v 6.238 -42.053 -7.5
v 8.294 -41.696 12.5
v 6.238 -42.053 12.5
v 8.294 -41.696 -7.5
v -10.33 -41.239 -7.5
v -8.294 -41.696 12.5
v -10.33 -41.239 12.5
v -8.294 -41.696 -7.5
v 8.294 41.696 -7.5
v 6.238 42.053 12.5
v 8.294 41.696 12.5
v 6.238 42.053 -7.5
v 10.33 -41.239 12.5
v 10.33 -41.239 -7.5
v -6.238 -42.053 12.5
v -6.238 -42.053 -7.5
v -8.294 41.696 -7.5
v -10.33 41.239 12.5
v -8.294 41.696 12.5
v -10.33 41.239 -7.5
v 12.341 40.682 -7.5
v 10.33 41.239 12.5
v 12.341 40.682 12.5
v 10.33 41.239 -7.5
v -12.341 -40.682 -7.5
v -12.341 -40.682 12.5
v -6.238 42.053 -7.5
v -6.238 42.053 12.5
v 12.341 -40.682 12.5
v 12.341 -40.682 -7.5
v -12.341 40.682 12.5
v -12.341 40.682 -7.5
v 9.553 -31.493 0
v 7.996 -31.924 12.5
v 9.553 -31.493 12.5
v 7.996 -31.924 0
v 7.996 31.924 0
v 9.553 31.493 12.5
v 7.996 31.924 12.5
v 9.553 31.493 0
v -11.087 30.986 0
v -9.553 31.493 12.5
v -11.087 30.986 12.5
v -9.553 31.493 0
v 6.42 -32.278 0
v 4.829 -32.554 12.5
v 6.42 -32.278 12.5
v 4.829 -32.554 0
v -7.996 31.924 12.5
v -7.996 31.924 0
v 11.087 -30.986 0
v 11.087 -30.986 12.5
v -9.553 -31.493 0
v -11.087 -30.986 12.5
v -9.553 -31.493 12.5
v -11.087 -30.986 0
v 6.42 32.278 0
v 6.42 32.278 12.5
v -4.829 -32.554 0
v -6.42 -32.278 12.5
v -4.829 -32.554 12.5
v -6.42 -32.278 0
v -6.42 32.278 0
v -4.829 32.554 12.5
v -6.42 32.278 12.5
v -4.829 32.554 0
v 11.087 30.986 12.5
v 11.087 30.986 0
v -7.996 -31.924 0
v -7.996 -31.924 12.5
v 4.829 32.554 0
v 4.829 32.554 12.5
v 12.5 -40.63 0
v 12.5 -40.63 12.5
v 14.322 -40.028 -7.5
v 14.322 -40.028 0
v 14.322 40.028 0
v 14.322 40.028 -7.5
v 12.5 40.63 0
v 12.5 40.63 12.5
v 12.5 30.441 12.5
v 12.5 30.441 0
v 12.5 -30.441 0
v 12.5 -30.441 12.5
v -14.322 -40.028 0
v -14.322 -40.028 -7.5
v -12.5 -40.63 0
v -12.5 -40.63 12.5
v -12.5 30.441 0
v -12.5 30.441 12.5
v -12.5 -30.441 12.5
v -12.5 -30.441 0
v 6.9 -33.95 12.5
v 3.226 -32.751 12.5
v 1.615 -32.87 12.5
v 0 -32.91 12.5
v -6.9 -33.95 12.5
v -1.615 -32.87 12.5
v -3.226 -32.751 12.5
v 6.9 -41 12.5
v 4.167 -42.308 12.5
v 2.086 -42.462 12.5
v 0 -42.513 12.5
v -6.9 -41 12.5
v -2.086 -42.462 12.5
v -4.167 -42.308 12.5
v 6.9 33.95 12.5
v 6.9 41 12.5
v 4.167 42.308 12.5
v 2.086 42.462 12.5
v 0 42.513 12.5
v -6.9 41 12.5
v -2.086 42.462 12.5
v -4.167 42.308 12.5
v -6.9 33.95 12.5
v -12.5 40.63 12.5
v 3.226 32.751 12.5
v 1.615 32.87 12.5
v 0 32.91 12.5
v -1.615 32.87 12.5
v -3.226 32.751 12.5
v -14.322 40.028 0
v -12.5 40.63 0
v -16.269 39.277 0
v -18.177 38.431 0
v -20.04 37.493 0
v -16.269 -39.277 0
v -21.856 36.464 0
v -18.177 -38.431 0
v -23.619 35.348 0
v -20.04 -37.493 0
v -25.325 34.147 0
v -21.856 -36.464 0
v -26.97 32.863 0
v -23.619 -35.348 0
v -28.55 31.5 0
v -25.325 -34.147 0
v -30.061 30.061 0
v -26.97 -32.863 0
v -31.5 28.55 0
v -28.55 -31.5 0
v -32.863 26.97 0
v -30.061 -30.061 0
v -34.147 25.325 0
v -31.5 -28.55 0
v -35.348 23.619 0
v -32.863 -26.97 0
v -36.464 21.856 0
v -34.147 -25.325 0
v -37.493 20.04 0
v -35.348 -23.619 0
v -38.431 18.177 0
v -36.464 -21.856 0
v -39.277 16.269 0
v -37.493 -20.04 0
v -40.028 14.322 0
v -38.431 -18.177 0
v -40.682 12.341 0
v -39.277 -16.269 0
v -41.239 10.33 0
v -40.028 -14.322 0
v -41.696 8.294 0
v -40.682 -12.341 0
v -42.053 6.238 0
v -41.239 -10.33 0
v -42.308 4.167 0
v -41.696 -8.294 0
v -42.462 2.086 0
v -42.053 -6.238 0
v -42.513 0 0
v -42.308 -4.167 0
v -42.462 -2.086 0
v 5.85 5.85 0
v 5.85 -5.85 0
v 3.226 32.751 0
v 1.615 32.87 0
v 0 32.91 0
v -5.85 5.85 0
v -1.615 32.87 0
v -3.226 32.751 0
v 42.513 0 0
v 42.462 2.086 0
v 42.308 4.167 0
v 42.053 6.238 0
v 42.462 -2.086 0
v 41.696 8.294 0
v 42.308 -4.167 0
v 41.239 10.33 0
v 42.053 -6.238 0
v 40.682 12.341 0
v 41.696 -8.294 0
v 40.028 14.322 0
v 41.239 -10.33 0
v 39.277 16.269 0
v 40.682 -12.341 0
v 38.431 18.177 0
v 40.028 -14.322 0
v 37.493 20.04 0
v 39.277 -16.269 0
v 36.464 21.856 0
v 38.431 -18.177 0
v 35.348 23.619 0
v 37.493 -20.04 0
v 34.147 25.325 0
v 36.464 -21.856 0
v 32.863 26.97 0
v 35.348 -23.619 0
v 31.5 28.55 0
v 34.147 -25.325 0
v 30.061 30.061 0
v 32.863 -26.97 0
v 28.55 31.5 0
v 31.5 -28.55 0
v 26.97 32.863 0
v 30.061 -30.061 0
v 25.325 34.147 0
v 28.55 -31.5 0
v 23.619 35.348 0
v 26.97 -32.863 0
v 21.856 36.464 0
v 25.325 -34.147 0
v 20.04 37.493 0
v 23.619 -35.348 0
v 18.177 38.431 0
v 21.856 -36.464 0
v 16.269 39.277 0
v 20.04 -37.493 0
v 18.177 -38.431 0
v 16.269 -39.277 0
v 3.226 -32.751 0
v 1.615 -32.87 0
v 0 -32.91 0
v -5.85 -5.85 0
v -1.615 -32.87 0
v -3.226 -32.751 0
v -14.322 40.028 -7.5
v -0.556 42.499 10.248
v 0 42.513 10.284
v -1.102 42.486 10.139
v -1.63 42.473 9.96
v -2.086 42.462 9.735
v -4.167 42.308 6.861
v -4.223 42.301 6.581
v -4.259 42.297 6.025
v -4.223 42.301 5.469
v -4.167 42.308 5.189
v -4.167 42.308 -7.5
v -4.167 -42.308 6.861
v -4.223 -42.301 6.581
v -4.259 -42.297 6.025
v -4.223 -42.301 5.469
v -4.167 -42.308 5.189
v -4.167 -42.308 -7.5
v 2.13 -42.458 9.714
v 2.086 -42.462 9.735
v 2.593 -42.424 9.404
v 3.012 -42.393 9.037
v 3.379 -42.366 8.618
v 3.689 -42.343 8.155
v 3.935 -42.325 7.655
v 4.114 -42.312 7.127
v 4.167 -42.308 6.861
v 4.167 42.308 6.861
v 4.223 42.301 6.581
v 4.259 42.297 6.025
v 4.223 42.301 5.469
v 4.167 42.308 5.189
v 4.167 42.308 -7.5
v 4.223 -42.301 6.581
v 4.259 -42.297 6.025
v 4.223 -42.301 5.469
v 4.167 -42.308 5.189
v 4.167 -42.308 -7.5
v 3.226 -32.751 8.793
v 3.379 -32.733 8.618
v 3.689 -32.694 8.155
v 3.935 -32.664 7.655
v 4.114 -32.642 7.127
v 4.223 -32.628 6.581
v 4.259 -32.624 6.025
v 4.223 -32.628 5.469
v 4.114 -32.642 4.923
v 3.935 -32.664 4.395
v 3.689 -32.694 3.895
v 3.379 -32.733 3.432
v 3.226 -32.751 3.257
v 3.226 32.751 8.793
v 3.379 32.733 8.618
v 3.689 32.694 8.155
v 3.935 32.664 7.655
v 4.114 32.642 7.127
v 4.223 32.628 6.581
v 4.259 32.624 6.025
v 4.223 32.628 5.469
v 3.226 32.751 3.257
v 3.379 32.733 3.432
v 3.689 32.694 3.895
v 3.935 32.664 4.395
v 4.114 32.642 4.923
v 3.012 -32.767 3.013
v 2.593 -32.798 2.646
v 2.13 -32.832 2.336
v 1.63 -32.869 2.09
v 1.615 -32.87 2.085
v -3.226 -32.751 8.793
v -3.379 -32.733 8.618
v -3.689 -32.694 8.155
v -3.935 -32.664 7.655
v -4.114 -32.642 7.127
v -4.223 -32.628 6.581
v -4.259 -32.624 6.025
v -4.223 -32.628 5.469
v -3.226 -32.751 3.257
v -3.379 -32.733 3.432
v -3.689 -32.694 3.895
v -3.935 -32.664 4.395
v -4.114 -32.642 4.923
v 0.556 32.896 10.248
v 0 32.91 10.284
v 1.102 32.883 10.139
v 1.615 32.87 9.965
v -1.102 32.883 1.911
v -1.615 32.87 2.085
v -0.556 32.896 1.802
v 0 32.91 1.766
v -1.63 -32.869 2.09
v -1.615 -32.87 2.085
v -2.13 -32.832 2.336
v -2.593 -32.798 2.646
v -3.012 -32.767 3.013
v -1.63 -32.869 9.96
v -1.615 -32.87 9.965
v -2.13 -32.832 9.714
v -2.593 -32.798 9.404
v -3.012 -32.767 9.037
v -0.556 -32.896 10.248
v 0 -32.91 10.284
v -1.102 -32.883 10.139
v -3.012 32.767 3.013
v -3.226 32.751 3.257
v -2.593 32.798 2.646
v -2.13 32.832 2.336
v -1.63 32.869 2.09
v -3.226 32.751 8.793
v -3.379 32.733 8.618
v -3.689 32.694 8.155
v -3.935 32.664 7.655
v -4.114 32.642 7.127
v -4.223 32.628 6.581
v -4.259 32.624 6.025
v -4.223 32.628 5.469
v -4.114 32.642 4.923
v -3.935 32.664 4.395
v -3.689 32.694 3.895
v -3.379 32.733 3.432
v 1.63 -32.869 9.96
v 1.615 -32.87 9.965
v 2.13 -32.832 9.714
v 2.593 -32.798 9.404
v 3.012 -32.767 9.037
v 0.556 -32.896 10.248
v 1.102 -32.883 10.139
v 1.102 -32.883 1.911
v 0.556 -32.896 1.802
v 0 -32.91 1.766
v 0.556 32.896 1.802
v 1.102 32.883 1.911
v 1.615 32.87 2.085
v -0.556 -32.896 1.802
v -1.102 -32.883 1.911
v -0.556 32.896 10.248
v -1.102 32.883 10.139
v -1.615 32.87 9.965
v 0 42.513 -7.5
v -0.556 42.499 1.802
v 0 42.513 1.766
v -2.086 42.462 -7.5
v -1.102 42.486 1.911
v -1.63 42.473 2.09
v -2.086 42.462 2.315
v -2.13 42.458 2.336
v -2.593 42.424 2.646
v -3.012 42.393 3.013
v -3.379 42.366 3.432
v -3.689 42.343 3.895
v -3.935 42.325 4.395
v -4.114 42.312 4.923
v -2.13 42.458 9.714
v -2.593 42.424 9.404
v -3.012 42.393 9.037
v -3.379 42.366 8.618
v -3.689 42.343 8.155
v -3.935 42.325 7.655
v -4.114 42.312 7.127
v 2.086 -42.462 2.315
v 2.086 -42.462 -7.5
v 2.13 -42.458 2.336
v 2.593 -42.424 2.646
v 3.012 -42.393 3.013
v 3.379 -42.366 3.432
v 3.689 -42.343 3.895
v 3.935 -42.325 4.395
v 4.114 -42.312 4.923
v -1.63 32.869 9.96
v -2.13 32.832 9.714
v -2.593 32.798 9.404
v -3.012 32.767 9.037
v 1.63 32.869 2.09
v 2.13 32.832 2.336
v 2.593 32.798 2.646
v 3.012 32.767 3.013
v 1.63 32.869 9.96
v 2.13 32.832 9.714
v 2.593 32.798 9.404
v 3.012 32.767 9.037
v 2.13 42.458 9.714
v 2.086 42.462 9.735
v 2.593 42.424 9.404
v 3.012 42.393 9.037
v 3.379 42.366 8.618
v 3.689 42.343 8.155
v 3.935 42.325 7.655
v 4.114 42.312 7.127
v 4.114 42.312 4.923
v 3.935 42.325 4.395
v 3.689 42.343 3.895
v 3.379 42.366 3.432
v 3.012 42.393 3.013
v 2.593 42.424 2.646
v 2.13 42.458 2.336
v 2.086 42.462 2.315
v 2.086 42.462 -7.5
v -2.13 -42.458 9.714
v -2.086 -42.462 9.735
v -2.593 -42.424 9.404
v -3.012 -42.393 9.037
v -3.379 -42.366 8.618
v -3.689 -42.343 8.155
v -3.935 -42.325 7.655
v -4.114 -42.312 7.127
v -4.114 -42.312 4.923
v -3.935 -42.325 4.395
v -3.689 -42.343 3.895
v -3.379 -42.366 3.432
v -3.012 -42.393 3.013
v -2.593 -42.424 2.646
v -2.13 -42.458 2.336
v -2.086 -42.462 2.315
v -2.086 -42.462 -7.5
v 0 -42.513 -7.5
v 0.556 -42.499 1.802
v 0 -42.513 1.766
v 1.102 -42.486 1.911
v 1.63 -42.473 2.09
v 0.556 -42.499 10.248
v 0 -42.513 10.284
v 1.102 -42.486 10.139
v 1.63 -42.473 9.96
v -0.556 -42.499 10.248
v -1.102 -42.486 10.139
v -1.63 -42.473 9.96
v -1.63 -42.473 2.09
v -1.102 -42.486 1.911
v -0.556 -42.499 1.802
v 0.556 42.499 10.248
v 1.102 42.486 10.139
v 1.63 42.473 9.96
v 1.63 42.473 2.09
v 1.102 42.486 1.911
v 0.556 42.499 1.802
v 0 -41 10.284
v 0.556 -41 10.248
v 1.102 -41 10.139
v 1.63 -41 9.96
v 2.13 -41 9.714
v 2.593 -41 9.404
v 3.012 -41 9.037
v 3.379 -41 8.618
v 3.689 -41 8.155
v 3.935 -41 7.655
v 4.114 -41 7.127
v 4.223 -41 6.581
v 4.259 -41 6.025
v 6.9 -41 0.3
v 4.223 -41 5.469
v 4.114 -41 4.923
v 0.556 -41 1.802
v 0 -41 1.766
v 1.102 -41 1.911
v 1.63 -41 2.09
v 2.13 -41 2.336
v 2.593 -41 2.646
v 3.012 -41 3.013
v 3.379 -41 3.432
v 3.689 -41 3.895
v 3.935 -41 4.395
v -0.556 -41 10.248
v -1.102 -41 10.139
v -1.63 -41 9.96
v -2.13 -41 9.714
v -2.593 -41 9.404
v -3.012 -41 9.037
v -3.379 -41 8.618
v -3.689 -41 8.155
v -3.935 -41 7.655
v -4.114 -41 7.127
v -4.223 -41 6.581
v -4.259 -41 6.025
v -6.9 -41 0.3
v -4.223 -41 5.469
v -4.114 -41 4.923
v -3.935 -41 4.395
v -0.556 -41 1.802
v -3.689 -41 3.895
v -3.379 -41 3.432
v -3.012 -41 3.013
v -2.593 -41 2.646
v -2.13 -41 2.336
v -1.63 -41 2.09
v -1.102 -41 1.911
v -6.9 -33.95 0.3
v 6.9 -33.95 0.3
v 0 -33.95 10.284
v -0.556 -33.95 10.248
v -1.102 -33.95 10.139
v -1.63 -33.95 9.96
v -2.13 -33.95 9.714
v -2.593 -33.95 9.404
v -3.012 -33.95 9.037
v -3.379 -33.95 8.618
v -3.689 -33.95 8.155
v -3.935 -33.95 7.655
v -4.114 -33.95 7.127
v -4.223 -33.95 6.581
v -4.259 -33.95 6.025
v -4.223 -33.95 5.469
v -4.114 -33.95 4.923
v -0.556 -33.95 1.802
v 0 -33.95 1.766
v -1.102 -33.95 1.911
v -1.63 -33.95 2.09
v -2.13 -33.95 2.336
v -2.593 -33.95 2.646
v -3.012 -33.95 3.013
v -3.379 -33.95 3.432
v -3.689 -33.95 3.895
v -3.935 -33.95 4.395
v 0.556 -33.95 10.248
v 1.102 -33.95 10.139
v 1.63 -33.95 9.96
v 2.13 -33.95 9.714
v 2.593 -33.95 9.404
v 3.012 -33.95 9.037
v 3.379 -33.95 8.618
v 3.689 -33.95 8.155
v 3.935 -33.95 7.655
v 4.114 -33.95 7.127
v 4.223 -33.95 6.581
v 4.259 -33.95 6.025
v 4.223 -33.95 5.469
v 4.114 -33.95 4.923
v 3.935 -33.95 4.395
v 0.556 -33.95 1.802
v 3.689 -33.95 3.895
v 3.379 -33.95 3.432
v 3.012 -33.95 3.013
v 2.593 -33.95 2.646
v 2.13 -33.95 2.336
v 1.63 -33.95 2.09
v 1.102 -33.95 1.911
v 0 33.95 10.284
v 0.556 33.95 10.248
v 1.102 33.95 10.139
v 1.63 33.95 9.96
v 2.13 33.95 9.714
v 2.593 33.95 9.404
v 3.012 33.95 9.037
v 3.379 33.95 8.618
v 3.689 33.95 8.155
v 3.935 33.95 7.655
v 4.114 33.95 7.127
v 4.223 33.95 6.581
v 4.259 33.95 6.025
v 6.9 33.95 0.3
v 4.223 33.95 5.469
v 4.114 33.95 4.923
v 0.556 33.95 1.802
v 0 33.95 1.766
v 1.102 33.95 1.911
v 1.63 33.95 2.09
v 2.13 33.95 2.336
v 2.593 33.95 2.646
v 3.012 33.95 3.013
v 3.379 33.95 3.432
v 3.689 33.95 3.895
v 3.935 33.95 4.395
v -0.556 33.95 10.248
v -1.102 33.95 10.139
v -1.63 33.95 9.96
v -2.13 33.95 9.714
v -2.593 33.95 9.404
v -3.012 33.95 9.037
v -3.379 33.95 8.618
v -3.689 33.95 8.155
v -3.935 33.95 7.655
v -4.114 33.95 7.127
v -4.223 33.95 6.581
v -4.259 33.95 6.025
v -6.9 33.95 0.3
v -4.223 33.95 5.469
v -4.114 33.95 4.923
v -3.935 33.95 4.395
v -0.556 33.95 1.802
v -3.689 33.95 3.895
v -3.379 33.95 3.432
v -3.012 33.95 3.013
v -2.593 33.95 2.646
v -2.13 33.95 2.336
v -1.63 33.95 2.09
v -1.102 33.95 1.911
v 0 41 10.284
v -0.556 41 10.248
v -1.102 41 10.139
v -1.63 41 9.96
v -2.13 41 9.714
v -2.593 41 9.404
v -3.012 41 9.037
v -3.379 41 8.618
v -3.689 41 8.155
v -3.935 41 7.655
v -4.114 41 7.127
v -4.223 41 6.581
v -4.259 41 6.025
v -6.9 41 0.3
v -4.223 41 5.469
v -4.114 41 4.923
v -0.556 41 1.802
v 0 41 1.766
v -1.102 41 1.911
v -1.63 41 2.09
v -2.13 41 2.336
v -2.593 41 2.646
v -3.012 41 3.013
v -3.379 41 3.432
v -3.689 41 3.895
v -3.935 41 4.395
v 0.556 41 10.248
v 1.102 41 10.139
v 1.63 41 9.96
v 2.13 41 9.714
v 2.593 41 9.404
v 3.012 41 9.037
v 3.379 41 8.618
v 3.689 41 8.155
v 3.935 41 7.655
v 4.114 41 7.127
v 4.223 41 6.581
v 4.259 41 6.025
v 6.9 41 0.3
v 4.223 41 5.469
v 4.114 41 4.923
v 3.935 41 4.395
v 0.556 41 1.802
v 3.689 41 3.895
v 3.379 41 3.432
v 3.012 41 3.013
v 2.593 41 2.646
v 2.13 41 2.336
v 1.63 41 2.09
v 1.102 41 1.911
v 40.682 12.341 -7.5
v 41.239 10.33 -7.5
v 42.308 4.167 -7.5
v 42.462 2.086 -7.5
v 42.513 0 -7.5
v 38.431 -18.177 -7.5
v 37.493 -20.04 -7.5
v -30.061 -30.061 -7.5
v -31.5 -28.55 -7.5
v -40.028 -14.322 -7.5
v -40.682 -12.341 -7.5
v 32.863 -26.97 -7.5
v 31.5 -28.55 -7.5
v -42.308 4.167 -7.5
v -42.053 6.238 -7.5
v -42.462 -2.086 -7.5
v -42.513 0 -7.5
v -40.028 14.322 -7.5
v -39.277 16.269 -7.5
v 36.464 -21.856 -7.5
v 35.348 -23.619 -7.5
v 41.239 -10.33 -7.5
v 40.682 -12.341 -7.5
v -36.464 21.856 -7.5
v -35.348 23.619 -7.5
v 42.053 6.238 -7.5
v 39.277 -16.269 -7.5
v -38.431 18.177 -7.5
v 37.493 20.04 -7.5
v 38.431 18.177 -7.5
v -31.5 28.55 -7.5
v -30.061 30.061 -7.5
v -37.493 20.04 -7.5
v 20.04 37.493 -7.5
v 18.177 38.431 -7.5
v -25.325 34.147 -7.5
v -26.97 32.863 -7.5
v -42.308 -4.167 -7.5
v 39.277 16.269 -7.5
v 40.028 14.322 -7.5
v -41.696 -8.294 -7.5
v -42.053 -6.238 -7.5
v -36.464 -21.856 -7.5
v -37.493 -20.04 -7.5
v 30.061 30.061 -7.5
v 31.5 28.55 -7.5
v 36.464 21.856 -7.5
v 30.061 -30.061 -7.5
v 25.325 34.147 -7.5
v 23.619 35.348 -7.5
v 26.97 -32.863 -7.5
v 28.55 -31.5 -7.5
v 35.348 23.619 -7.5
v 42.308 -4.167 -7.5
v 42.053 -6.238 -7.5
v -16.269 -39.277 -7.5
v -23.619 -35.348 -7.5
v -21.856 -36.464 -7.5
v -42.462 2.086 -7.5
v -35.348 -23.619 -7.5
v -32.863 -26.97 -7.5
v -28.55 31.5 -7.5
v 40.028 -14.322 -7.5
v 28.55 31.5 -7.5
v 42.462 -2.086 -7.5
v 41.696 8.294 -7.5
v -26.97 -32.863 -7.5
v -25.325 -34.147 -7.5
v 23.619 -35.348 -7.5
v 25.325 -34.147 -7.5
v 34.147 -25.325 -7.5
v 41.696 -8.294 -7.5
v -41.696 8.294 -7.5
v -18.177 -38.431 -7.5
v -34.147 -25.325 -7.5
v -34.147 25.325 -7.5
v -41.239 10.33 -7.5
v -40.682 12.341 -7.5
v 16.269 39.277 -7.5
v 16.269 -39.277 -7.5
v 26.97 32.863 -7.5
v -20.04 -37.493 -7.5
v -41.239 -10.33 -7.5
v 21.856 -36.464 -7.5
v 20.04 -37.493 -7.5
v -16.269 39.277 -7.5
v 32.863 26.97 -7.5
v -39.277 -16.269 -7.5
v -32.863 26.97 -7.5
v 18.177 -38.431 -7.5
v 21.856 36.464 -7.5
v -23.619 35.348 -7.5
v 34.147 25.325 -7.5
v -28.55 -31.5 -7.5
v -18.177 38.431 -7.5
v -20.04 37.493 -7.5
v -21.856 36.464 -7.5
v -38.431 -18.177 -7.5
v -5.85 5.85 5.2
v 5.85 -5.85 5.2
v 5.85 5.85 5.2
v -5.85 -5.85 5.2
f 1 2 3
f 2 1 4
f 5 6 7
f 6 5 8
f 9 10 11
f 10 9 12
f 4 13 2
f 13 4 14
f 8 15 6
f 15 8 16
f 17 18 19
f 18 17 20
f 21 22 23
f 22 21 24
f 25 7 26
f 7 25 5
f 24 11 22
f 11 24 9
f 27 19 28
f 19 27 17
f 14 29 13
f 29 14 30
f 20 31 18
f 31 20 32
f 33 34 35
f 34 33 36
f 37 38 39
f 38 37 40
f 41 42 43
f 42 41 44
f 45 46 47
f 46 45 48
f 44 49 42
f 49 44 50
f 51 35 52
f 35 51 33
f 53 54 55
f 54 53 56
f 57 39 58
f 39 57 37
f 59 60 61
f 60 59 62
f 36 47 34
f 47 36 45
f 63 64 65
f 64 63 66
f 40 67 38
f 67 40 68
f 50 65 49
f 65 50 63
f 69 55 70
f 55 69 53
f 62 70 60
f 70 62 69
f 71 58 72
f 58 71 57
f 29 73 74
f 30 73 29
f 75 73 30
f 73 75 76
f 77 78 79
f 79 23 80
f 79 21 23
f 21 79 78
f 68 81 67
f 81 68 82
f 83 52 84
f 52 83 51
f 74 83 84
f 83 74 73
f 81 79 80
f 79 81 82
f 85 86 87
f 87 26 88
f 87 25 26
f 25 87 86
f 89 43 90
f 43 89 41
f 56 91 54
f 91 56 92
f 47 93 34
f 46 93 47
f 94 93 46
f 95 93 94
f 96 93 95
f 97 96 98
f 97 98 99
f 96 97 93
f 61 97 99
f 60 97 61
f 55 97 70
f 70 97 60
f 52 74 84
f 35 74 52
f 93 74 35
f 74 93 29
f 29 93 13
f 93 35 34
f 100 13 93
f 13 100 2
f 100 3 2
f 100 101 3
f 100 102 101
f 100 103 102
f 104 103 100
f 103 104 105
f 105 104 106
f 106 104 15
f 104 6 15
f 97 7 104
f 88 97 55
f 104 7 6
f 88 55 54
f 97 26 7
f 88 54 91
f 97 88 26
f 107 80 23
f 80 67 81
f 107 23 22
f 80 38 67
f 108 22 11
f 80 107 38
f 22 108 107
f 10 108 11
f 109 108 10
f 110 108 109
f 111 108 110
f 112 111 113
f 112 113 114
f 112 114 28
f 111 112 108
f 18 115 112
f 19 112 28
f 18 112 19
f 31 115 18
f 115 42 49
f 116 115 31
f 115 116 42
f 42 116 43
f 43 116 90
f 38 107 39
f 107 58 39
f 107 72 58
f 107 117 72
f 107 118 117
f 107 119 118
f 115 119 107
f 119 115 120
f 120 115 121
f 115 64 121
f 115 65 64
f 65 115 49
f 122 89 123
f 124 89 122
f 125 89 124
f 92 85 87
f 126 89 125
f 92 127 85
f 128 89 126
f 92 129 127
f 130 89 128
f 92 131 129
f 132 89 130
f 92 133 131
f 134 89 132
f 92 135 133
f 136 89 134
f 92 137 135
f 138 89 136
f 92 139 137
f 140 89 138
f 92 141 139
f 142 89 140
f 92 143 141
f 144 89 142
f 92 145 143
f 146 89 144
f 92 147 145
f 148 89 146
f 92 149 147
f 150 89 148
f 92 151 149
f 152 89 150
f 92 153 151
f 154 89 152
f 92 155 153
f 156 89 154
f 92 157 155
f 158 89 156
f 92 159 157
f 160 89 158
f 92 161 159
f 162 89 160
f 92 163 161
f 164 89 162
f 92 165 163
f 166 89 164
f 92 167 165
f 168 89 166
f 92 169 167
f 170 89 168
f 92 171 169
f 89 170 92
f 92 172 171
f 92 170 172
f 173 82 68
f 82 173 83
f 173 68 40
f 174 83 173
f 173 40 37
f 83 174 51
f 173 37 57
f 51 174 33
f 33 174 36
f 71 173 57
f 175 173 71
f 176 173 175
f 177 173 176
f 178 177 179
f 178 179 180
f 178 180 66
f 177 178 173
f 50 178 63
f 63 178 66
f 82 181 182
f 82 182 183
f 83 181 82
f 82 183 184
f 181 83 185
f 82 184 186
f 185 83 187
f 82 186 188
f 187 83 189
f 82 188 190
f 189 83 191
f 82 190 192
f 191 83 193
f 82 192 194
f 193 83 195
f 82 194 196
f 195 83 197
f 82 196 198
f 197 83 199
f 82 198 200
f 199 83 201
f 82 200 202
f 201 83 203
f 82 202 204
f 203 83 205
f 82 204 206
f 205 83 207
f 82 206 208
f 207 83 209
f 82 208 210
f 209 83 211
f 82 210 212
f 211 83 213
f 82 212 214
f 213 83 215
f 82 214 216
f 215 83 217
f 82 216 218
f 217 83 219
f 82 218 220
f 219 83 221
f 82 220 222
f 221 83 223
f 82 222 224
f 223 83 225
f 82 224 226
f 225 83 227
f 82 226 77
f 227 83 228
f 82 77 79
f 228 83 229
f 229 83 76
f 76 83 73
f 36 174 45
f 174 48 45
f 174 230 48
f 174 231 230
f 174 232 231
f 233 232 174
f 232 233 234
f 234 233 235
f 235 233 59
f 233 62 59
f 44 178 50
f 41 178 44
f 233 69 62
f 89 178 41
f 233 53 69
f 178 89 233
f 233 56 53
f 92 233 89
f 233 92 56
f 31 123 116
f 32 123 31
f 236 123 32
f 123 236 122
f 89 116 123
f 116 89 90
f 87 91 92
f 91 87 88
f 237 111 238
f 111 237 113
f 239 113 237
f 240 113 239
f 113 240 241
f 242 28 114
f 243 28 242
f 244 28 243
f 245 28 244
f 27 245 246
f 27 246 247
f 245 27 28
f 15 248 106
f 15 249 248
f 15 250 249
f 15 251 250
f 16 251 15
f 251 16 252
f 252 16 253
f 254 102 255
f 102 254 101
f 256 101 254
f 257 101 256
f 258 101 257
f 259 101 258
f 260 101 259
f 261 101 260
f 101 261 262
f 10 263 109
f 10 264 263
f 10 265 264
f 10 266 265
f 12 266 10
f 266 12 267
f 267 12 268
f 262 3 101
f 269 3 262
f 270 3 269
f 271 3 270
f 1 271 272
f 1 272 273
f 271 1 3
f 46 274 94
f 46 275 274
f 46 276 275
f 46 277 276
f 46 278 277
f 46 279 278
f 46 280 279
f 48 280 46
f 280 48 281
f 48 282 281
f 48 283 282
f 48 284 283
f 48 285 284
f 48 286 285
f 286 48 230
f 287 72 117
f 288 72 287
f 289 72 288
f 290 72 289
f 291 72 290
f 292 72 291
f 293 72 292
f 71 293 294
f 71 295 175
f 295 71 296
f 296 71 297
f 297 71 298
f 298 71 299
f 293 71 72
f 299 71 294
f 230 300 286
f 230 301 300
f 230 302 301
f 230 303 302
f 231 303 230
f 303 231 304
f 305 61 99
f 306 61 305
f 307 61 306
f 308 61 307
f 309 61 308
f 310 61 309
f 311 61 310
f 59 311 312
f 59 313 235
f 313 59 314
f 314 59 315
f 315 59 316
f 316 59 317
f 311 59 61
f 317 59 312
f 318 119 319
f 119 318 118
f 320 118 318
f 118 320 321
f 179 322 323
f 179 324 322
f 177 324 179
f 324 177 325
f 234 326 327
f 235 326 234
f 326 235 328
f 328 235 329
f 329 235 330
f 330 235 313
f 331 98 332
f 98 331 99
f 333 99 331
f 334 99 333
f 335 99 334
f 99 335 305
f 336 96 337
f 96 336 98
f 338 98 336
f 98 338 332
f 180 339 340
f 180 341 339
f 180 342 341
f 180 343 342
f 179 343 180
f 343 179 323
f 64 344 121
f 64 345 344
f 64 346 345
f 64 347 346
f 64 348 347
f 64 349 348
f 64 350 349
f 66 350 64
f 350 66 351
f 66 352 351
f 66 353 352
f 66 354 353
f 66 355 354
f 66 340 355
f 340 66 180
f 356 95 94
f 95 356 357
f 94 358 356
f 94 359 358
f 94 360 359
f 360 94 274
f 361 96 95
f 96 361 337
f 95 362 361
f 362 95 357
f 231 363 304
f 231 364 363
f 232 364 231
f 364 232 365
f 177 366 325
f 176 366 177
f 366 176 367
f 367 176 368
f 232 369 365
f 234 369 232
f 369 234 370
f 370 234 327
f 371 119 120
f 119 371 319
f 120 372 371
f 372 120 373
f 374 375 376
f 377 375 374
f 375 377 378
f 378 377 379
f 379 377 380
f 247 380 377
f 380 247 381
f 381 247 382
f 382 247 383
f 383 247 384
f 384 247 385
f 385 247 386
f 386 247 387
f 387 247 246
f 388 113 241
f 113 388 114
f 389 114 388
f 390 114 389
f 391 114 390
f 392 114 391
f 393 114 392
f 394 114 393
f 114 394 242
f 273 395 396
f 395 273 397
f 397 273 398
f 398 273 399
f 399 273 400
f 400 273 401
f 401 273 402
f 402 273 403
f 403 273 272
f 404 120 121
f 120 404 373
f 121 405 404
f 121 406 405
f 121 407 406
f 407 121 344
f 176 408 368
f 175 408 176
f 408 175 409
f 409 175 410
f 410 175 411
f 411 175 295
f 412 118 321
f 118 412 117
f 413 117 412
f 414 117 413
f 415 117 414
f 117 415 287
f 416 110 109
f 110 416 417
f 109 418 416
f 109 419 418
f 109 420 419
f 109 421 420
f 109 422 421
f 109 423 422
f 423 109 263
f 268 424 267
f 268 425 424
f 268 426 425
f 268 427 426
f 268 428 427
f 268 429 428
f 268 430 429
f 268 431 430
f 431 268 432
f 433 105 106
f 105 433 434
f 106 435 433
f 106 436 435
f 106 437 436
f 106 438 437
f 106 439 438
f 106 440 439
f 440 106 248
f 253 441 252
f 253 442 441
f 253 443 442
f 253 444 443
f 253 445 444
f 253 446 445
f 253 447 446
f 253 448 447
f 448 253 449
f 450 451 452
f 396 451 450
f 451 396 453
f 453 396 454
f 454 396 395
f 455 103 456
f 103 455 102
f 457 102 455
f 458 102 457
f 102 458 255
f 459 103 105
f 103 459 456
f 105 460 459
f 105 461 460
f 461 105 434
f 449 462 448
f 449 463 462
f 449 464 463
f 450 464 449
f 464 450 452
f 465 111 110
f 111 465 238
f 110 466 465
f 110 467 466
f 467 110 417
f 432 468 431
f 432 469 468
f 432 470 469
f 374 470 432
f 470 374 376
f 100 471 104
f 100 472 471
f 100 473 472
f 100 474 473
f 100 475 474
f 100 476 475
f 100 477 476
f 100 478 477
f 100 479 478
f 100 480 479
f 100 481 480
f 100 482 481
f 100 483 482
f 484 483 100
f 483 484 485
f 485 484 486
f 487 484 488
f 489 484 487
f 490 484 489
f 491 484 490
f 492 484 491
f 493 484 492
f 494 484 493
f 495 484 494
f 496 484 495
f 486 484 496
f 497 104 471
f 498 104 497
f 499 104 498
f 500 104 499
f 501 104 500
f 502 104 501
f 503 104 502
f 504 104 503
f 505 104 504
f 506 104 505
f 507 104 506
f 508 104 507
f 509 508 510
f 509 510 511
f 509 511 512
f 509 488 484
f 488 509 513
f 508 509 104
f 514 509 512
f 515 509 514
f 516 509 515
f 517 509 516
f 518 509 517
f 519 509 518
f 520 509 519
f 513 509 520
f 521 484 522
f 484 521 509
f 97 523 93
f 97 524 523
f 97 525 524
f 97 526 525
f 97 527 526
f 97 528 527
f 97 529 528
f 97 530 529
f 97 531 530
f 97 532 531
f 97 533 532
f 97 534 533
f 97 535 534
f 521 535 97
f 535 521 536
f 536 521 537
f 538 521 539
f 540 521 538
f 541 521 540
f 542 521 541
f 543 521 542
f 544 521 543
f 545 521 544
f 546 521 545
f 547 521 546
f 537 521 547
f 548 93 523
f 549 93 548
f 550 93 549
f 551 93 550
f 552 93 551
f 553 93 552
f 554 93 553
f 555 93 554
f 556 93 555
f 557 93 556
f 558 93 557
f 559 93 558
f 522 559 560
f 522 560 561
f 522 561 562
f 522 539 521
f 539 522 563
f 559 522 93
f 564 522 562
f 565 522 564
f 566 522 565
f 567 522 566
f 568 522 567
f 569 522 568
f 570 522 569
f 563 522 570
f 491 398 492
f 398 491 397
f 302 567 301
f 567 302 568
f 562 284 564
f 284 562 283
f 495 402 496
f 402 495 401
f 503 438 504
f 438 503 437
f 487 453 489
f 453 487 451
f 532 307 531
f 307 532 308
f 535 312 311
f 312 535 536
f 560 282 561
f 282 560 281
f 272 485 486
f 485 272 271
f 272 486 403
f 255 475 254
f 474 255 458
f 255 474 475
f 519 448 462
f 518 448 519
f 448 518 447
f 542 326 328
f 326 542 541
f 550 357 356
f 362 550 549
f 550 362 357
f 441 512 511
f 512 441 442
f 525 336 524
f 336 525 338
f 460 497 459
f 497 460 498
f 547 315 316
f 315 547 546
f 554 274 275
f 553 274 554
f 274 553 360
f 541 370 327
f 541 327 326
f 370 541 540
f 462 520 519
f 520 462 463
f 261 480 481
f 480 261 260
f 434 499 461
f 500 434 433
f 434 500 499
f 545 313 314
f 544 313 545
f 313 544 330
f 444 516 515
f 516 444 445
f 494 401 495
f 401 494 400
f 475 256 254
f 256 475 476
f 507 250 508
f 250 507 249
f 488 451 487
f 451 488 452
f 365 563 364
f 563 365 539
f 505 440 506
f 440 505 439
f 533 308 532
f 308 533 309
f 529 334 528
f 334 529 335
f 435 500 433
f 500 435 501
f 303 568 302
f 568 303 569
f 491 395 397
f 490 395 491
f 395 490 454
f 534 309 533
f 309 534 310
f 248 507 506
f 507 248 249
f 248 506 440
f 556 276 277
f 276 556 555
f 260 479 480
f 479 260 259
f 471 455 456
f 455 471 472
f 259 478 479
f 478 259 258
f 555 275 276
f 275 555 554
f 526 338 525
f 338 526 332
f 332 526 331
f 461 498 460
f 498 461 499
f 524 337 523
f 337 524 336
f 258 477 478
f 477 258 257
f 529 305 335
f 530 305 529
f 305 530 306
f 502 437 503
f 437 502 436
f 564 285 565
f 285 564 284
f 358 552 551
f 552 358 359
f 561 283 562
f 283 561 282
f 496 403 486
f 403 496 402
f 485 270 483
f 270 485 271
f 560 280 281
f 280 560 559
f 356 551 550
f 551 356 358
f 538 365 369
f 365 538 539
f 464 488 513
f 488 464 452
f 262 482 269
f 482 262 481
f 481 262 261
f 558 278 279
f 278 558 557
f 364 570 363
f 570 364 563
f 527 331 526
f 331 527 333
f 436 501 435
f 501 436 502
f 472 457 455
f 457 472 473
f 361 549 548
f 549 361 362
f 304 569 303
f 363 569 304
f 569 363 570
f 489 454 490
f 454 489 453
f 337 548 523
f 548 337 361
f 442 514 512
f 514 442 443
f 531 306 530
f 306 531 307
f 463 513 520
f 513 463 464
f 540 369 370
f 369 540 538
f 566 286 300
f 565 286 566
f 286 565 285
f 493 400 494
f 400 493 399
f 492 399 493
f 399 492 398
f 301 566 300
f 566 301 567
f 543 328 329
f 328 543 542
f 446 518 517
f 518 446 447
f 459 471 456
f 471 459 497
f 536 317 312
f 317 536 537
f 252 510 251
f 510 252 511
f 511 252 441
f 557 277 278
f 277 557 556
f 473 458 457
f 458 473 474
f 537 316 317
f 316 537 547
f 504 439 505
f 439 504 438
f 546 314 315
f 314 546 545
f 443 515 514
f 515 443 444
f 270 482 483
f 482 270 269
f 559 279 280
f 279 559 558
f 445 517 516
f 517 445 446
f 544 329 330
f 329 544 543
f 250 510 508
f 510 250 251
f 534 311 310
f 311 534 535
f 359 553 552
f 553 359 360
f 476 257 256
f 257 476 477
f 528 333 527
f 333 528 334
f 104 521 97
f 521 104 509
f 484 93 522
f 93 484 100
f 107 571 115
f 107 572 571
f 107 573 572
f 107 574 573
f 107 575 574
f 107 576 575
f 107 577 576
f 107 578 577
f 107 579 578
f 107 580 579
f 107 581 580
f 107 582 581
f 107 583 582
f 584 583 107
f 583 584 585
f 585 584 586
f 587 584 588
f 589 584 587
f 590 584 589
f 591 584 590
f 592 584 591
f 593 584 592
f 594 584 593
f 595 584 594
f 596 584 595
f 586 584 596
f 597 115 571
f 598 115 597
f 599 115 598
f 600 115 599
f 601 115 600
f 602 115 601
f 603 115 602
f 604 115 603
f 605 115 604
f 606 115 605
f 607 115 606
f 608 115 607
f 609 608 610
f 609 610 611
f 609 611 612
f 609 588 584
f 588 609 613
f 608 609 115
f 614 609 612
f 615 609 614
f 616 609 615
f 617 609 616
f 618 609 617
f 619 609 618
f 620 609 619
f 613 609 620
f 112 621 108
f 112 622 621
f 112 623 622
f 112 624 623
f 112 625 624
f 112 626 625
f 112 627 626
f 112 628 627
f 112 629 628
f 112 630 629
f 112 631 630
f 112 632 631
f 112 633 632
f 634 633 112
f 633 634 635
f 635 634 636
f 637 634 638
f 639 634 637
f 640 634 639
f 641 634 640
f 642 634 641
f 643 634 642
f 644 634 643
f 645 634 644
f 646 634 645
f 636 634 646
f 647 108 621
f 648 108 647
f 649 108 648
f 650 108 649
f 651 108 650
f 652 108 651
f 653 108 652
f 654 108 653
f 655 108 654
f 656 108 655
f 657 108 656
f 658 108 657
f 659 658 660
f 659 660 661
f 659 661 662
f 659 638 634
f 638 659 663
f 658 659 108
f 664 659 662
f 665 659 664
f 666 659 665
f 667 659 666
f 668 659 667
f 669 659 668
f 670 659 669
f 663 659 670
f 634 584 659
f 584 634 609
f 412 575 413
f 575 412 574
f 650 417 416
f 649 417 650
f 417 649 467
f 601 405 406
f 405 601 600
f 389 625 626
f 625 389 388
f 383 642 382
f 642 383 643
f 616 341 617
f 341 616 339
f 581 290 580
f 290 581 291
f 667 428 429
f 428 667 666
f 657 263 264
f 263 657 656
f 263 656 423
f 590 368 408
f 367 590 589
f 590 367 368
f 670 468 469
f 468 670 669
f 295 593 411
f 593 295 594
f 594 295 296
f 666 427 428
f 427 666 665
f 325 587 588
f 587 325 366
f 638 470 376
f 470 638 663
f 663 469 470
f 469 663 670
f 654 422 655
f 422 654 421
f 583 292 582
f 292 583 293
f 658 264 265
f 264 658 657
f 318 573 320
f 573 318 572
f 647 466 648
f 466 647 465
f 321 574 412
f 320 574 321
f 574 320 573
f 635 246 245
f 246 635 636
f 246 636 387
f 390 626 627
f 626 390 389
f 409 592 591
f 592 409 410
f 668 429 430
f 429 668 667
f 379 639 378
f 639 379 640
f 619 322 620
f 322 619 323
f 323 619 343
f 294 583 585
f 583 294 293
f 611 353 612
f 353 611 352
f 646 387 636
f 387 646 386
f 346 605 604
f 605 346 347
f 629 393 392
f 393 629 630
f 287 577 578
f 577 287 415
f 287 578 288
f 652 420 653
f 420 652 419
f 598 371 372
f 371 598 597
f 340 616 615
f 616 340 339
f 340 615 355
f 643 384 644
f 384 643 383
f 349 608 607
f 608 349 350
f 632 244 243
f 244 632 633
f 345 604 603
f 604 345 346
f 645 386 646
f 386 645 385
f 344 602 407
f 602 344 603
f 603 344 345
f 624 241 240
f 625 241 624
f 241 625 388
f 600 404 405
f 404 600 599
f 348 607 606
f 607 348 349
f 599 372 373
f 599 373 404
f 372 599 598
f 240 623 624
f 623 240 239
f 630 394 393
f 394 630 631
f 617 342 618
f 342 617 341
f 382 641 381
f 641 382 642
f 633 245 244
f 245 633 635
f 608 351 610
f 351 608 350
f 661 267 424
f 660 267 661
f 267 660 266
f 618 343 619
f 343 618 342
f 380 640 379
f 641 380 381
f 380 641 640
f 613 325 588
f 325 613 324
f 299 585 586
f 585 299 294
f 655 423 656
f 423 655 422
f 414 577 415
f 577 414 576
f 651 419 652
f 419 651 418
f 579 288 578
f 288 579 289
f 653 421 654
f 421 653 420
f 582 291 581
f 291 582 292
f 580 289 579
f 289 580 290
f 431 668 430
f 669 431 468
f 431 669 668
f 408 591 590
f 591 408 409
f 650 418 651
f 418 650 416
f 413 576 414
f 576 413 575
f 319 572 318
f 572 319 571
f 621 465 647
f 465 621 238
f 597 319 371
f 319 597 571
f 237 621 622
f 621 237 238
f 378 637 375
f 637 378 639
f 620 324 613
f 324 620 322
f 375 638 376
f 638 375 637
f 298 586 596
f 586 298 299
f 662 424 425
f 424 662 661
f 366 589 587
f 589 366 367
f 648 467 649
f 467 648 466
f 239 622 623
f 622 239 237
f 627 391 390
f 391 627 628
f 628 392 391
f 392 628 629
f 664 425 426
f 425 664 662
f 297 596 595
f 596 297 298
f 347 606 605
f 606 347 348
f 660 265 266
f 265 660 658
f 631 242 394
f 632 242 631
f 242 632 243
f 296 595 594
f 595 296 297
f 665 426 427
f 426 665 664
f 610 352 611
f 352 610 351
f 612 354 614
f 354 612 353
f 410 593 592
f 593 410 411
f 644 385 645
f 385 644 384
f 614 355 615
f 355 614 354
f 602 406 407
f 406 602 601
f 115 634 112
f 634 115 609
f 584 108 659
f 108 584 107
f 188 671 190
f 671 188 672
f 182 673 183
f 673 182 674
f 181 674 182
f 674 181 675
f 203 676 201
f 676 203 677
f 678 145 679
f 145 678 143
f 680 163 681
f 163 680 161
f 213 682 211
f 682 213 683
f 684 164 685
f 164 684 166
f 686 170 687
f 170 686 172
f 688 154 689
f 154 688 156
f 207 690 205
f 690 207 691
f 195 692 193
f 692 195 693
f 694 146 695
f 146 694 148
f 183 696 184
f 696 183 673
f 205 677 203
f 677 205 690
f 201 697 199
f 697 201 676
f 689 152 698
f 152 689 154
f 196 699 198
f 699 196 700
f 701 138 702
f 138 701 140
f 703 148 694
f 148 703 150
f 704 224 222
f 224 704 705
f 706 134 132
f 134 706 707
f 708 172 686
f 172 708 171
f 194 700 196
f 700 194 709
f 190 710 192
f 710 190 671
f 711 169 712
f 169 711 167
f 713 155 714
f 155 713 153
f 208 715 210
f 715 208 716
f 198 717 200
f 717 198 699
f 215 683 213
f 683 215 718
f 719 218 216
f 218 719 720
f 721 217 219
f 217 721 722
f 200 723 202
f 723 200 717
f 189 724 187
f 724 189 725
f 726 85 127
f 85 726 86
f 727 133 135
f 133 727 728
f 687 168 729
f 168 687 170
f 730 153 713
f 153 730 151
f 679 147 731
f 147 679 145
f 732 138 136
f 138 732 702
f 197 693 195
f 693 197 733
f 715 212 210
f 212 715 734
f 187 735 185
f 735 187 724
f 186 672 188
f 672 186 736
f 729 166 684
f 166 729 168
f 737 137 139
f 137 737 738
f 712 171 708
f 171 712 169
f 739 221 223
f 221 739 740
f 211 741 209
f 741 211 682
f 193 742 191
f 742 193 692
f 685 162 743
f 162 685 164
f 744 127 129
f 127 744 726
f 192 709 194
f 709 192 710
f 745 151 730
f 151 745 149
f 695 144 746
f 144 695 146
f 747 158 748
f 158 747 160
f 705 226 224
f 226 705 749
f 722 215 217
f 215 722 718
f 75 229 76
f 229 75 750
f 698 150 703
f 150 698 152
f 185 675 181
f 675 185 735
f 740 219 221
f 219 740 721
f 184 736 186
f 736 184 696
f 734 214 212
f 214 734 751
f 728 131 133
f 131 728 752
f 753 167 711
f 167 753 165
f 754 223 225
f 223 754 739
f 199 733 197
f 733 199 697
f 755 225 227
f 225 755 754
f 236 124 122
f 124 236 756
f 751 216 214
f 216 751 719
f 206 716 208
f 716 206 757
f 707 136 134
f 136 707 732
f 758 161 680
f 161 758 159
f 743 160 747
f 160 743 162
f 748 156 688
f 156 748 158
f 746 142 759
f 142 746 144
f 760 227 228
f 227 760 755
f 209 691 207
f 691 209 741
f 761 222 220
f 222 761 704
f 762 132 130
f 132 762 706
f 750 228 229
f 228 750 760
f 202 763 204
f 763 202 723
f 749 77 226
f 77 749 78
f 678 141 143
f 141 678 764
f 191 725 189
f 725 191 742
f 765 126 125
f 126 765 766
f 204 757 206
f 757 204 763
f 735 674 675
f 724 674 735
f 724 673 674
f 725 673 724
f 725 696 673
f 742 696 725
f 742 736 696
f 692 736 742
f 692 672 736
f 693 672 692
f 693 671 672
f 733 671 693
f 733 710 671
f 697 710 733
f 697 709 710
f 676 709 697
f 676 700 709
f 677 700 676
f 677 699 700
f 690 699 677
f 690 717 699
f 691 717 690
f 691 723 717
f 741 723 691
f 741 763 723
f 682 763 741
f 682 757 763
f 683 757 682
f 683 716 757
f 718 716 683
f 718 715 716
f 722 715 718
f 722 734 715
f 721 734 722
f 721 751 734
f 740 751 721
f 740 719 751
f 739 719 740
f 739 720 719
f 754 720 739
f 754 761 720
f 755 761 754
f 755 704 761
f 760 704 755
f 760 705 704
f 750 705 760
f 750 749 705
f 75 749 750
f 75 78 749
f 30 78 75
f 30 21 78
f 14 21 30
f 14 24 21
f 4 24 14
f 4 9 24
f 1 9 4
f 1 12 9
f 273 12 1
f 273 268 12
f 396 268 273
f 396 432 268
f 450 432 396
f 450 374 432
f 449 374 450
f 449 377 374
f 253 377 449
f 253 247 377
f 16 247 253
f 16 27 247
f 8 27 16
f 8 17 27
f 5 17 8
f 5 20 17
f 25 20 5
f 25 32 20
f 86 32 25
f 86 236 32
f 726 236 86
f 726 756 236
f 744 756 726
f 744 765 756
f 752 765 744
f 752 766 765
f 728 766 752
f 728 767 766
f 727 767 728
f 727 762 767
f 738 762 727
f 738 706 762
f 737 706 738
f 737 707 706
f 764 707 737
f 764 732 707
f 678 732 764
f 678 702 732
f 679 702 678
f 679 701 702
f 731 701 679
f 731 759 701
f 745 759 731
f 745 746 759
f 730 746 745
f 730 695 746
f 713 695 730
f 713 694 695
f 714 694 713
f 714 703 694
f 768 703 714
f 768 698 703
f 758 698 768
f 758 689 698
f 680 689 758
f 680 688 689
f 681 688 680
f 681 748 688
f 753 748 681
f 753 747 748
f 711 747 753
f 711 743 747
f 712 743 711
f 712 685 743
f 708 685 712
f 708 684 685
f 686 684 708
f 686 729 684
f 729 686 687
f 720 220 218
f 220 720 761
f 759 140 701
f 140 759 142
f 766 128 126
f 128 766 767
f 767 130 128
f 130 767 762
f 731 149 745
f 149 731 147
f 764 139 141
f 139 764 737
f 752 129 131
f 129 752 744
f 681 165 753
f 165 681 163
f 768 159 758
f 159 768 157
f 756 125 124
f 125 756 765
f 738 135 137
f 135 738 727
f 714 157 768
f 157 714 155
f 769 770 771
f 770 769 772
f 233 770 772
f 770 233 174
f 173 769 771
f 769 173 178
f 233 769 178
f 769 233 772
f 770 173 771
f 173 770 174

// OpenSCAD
// file: cylinder_outer.scad
 module cylinder_outer(h, d=1, r, center=false, fn=48){
   rad = !is_undef(r) ? r : d/2;
   fudge = 1/cos(180/fn);
   cylinder(h=h,r=rad*fudge,center=center,$fn=fn);
}
// file: Generic Mount Disc 65mm.scad
use <cylinder_outer.scad>

// Globals (in mm)
function GenericMountDisc_Diameter() = 65;
function GenericMountDisc_Thickness() = 12.5;
function GenericMountDisc_NotchZ() = 6.025;
function GenericMountDisc_NotchDiameter() = 6.8;
function GenericMountDisc_NotchDepth() = 5.75;

module GenericMountDisc(pos = [0,0,0]) {
// Parameters (in mm)
eps=0.4;
baseDiam = GenericMountDisc_Diameter();
baseRadius = baseDiam / 2;
baseThickness = GenericMountDisc_Thickness();
holeCenter = GenericMountDisc_NotchZ();
holeDiam = GenericMountDisc_NotchDiameter() + 2 * eps;
holeRadius = holeDiam / 2;
holeDepth = GenericMountDisc_NotchDepth();
boxHeight = 6;
boxWidth = 13.5;

// Offset to position
translate(pos) {

    // Base
    difference() {
    cylinder_outer(h=baseThickness, r=baseRadius, fn=128);

    // Bolt holes
    translate([0, 0, holeCenter]) {
        offset = baseRadius - holeDepth/2 + eps;
        translate([0, offset, 0]) rotate([90,0,0]) cylinder_outer(h=holeDepth, r=holeRadius, center=true);
        translate([0, -offset, 0]) rotate([-90,0,0]) cylinder_outer(h=holeDepth, r=holeRadius, center=true);
    }

    // Box
    offset = boxWidth / 2;
    translate([-offset, -offset, -eps]) cube([boxWidth, boxWidth, boxHeight + eps]);
    }
    }
}

GenericMountDisc();
// main file
use <Generic Mount Disc 65mm.scad>;
use <cylinder_outer.scad>


function GenericMountRing_Diameter() = GenericMountDisc_Diameter() + 20;
function GenericMountRing_Thickness() = 7.5;

module GenericMountRing(pos = [0,0,0]) {
// Parameters (in mm)
eps=0.4;
baseDiam = GenericMountRing_Diameter();
baseRadius = baseDiam / 2;
baseThickness = GenericMountRing_Thickness();
boxHeight = 6 - 2 * eps;
boxWidth = 12.5 - 2 * eps;

wallHeight = 12.5;
wallThickness = 10 - eps;

nutWidth = 13 + 2 * eps;
nutDepth = 6.25 + 2 * eps;
nutHeight = 12.5 + 2 * eps;

holeZ = 6.025;
holeRadius = 6.9 / 2 + 2 * eps;
holeDepth = 12;

// Offset to position
translate(pos) {

    // Base
    translate([0,0,-baseThickness]) cylinder_outer(h=baseThickness, r=baseRadius, fn=128);
    
    // Walls
    difference() {
      cylinder_outer(h=wallHeight, r=baseRadius, fn=128);
      cylinder_outer(h=wallHeight, r=baseRadius-wallThickness, fn=128);
      translate([12.5, -baseRadius,0]) cube([baseRadius, baseDiam, wallHeight+eps]);
      translate([-12.5-baseRadius, -baseRadius,0]) cube([baseRadius, baseDiam, wallHeight+eps]);
      // Bolt holes
      translate([0, 0, holeZ]) {
          offset = baseRadius + 1 - holeDepth/2 + eps;
          translate([0, offset, 0]) rotate([90,0,0]) cylinder_outer(h=holeDepth, r=holeRadius, center=true);
          translate([0, -offset, 0]) rotate([-90,0,0]) cylinder_outer(h=holeDepth, r=holeRadius, center=true);
      }
      // Nut cutouts
      x = -nutWidth / 2;
      translate([x,-baseRadius+2.3-2*eps,0.3]) cube([nutWidth, nutDepth, nutHeight]);
      translate([x,baseRadius-nutDepth+2*eps-2.3,0.3]) cube([nutWidth, nutDepth, nutHeight]);
    }


    // Box
    offset = boxWidth / 2;
    translate([-offset, -offset, -eps]) cube([boxWidth, boxWidth, boxHeight + eps]);
}
}

GenericMountRing();
// GenericMountDisc();
